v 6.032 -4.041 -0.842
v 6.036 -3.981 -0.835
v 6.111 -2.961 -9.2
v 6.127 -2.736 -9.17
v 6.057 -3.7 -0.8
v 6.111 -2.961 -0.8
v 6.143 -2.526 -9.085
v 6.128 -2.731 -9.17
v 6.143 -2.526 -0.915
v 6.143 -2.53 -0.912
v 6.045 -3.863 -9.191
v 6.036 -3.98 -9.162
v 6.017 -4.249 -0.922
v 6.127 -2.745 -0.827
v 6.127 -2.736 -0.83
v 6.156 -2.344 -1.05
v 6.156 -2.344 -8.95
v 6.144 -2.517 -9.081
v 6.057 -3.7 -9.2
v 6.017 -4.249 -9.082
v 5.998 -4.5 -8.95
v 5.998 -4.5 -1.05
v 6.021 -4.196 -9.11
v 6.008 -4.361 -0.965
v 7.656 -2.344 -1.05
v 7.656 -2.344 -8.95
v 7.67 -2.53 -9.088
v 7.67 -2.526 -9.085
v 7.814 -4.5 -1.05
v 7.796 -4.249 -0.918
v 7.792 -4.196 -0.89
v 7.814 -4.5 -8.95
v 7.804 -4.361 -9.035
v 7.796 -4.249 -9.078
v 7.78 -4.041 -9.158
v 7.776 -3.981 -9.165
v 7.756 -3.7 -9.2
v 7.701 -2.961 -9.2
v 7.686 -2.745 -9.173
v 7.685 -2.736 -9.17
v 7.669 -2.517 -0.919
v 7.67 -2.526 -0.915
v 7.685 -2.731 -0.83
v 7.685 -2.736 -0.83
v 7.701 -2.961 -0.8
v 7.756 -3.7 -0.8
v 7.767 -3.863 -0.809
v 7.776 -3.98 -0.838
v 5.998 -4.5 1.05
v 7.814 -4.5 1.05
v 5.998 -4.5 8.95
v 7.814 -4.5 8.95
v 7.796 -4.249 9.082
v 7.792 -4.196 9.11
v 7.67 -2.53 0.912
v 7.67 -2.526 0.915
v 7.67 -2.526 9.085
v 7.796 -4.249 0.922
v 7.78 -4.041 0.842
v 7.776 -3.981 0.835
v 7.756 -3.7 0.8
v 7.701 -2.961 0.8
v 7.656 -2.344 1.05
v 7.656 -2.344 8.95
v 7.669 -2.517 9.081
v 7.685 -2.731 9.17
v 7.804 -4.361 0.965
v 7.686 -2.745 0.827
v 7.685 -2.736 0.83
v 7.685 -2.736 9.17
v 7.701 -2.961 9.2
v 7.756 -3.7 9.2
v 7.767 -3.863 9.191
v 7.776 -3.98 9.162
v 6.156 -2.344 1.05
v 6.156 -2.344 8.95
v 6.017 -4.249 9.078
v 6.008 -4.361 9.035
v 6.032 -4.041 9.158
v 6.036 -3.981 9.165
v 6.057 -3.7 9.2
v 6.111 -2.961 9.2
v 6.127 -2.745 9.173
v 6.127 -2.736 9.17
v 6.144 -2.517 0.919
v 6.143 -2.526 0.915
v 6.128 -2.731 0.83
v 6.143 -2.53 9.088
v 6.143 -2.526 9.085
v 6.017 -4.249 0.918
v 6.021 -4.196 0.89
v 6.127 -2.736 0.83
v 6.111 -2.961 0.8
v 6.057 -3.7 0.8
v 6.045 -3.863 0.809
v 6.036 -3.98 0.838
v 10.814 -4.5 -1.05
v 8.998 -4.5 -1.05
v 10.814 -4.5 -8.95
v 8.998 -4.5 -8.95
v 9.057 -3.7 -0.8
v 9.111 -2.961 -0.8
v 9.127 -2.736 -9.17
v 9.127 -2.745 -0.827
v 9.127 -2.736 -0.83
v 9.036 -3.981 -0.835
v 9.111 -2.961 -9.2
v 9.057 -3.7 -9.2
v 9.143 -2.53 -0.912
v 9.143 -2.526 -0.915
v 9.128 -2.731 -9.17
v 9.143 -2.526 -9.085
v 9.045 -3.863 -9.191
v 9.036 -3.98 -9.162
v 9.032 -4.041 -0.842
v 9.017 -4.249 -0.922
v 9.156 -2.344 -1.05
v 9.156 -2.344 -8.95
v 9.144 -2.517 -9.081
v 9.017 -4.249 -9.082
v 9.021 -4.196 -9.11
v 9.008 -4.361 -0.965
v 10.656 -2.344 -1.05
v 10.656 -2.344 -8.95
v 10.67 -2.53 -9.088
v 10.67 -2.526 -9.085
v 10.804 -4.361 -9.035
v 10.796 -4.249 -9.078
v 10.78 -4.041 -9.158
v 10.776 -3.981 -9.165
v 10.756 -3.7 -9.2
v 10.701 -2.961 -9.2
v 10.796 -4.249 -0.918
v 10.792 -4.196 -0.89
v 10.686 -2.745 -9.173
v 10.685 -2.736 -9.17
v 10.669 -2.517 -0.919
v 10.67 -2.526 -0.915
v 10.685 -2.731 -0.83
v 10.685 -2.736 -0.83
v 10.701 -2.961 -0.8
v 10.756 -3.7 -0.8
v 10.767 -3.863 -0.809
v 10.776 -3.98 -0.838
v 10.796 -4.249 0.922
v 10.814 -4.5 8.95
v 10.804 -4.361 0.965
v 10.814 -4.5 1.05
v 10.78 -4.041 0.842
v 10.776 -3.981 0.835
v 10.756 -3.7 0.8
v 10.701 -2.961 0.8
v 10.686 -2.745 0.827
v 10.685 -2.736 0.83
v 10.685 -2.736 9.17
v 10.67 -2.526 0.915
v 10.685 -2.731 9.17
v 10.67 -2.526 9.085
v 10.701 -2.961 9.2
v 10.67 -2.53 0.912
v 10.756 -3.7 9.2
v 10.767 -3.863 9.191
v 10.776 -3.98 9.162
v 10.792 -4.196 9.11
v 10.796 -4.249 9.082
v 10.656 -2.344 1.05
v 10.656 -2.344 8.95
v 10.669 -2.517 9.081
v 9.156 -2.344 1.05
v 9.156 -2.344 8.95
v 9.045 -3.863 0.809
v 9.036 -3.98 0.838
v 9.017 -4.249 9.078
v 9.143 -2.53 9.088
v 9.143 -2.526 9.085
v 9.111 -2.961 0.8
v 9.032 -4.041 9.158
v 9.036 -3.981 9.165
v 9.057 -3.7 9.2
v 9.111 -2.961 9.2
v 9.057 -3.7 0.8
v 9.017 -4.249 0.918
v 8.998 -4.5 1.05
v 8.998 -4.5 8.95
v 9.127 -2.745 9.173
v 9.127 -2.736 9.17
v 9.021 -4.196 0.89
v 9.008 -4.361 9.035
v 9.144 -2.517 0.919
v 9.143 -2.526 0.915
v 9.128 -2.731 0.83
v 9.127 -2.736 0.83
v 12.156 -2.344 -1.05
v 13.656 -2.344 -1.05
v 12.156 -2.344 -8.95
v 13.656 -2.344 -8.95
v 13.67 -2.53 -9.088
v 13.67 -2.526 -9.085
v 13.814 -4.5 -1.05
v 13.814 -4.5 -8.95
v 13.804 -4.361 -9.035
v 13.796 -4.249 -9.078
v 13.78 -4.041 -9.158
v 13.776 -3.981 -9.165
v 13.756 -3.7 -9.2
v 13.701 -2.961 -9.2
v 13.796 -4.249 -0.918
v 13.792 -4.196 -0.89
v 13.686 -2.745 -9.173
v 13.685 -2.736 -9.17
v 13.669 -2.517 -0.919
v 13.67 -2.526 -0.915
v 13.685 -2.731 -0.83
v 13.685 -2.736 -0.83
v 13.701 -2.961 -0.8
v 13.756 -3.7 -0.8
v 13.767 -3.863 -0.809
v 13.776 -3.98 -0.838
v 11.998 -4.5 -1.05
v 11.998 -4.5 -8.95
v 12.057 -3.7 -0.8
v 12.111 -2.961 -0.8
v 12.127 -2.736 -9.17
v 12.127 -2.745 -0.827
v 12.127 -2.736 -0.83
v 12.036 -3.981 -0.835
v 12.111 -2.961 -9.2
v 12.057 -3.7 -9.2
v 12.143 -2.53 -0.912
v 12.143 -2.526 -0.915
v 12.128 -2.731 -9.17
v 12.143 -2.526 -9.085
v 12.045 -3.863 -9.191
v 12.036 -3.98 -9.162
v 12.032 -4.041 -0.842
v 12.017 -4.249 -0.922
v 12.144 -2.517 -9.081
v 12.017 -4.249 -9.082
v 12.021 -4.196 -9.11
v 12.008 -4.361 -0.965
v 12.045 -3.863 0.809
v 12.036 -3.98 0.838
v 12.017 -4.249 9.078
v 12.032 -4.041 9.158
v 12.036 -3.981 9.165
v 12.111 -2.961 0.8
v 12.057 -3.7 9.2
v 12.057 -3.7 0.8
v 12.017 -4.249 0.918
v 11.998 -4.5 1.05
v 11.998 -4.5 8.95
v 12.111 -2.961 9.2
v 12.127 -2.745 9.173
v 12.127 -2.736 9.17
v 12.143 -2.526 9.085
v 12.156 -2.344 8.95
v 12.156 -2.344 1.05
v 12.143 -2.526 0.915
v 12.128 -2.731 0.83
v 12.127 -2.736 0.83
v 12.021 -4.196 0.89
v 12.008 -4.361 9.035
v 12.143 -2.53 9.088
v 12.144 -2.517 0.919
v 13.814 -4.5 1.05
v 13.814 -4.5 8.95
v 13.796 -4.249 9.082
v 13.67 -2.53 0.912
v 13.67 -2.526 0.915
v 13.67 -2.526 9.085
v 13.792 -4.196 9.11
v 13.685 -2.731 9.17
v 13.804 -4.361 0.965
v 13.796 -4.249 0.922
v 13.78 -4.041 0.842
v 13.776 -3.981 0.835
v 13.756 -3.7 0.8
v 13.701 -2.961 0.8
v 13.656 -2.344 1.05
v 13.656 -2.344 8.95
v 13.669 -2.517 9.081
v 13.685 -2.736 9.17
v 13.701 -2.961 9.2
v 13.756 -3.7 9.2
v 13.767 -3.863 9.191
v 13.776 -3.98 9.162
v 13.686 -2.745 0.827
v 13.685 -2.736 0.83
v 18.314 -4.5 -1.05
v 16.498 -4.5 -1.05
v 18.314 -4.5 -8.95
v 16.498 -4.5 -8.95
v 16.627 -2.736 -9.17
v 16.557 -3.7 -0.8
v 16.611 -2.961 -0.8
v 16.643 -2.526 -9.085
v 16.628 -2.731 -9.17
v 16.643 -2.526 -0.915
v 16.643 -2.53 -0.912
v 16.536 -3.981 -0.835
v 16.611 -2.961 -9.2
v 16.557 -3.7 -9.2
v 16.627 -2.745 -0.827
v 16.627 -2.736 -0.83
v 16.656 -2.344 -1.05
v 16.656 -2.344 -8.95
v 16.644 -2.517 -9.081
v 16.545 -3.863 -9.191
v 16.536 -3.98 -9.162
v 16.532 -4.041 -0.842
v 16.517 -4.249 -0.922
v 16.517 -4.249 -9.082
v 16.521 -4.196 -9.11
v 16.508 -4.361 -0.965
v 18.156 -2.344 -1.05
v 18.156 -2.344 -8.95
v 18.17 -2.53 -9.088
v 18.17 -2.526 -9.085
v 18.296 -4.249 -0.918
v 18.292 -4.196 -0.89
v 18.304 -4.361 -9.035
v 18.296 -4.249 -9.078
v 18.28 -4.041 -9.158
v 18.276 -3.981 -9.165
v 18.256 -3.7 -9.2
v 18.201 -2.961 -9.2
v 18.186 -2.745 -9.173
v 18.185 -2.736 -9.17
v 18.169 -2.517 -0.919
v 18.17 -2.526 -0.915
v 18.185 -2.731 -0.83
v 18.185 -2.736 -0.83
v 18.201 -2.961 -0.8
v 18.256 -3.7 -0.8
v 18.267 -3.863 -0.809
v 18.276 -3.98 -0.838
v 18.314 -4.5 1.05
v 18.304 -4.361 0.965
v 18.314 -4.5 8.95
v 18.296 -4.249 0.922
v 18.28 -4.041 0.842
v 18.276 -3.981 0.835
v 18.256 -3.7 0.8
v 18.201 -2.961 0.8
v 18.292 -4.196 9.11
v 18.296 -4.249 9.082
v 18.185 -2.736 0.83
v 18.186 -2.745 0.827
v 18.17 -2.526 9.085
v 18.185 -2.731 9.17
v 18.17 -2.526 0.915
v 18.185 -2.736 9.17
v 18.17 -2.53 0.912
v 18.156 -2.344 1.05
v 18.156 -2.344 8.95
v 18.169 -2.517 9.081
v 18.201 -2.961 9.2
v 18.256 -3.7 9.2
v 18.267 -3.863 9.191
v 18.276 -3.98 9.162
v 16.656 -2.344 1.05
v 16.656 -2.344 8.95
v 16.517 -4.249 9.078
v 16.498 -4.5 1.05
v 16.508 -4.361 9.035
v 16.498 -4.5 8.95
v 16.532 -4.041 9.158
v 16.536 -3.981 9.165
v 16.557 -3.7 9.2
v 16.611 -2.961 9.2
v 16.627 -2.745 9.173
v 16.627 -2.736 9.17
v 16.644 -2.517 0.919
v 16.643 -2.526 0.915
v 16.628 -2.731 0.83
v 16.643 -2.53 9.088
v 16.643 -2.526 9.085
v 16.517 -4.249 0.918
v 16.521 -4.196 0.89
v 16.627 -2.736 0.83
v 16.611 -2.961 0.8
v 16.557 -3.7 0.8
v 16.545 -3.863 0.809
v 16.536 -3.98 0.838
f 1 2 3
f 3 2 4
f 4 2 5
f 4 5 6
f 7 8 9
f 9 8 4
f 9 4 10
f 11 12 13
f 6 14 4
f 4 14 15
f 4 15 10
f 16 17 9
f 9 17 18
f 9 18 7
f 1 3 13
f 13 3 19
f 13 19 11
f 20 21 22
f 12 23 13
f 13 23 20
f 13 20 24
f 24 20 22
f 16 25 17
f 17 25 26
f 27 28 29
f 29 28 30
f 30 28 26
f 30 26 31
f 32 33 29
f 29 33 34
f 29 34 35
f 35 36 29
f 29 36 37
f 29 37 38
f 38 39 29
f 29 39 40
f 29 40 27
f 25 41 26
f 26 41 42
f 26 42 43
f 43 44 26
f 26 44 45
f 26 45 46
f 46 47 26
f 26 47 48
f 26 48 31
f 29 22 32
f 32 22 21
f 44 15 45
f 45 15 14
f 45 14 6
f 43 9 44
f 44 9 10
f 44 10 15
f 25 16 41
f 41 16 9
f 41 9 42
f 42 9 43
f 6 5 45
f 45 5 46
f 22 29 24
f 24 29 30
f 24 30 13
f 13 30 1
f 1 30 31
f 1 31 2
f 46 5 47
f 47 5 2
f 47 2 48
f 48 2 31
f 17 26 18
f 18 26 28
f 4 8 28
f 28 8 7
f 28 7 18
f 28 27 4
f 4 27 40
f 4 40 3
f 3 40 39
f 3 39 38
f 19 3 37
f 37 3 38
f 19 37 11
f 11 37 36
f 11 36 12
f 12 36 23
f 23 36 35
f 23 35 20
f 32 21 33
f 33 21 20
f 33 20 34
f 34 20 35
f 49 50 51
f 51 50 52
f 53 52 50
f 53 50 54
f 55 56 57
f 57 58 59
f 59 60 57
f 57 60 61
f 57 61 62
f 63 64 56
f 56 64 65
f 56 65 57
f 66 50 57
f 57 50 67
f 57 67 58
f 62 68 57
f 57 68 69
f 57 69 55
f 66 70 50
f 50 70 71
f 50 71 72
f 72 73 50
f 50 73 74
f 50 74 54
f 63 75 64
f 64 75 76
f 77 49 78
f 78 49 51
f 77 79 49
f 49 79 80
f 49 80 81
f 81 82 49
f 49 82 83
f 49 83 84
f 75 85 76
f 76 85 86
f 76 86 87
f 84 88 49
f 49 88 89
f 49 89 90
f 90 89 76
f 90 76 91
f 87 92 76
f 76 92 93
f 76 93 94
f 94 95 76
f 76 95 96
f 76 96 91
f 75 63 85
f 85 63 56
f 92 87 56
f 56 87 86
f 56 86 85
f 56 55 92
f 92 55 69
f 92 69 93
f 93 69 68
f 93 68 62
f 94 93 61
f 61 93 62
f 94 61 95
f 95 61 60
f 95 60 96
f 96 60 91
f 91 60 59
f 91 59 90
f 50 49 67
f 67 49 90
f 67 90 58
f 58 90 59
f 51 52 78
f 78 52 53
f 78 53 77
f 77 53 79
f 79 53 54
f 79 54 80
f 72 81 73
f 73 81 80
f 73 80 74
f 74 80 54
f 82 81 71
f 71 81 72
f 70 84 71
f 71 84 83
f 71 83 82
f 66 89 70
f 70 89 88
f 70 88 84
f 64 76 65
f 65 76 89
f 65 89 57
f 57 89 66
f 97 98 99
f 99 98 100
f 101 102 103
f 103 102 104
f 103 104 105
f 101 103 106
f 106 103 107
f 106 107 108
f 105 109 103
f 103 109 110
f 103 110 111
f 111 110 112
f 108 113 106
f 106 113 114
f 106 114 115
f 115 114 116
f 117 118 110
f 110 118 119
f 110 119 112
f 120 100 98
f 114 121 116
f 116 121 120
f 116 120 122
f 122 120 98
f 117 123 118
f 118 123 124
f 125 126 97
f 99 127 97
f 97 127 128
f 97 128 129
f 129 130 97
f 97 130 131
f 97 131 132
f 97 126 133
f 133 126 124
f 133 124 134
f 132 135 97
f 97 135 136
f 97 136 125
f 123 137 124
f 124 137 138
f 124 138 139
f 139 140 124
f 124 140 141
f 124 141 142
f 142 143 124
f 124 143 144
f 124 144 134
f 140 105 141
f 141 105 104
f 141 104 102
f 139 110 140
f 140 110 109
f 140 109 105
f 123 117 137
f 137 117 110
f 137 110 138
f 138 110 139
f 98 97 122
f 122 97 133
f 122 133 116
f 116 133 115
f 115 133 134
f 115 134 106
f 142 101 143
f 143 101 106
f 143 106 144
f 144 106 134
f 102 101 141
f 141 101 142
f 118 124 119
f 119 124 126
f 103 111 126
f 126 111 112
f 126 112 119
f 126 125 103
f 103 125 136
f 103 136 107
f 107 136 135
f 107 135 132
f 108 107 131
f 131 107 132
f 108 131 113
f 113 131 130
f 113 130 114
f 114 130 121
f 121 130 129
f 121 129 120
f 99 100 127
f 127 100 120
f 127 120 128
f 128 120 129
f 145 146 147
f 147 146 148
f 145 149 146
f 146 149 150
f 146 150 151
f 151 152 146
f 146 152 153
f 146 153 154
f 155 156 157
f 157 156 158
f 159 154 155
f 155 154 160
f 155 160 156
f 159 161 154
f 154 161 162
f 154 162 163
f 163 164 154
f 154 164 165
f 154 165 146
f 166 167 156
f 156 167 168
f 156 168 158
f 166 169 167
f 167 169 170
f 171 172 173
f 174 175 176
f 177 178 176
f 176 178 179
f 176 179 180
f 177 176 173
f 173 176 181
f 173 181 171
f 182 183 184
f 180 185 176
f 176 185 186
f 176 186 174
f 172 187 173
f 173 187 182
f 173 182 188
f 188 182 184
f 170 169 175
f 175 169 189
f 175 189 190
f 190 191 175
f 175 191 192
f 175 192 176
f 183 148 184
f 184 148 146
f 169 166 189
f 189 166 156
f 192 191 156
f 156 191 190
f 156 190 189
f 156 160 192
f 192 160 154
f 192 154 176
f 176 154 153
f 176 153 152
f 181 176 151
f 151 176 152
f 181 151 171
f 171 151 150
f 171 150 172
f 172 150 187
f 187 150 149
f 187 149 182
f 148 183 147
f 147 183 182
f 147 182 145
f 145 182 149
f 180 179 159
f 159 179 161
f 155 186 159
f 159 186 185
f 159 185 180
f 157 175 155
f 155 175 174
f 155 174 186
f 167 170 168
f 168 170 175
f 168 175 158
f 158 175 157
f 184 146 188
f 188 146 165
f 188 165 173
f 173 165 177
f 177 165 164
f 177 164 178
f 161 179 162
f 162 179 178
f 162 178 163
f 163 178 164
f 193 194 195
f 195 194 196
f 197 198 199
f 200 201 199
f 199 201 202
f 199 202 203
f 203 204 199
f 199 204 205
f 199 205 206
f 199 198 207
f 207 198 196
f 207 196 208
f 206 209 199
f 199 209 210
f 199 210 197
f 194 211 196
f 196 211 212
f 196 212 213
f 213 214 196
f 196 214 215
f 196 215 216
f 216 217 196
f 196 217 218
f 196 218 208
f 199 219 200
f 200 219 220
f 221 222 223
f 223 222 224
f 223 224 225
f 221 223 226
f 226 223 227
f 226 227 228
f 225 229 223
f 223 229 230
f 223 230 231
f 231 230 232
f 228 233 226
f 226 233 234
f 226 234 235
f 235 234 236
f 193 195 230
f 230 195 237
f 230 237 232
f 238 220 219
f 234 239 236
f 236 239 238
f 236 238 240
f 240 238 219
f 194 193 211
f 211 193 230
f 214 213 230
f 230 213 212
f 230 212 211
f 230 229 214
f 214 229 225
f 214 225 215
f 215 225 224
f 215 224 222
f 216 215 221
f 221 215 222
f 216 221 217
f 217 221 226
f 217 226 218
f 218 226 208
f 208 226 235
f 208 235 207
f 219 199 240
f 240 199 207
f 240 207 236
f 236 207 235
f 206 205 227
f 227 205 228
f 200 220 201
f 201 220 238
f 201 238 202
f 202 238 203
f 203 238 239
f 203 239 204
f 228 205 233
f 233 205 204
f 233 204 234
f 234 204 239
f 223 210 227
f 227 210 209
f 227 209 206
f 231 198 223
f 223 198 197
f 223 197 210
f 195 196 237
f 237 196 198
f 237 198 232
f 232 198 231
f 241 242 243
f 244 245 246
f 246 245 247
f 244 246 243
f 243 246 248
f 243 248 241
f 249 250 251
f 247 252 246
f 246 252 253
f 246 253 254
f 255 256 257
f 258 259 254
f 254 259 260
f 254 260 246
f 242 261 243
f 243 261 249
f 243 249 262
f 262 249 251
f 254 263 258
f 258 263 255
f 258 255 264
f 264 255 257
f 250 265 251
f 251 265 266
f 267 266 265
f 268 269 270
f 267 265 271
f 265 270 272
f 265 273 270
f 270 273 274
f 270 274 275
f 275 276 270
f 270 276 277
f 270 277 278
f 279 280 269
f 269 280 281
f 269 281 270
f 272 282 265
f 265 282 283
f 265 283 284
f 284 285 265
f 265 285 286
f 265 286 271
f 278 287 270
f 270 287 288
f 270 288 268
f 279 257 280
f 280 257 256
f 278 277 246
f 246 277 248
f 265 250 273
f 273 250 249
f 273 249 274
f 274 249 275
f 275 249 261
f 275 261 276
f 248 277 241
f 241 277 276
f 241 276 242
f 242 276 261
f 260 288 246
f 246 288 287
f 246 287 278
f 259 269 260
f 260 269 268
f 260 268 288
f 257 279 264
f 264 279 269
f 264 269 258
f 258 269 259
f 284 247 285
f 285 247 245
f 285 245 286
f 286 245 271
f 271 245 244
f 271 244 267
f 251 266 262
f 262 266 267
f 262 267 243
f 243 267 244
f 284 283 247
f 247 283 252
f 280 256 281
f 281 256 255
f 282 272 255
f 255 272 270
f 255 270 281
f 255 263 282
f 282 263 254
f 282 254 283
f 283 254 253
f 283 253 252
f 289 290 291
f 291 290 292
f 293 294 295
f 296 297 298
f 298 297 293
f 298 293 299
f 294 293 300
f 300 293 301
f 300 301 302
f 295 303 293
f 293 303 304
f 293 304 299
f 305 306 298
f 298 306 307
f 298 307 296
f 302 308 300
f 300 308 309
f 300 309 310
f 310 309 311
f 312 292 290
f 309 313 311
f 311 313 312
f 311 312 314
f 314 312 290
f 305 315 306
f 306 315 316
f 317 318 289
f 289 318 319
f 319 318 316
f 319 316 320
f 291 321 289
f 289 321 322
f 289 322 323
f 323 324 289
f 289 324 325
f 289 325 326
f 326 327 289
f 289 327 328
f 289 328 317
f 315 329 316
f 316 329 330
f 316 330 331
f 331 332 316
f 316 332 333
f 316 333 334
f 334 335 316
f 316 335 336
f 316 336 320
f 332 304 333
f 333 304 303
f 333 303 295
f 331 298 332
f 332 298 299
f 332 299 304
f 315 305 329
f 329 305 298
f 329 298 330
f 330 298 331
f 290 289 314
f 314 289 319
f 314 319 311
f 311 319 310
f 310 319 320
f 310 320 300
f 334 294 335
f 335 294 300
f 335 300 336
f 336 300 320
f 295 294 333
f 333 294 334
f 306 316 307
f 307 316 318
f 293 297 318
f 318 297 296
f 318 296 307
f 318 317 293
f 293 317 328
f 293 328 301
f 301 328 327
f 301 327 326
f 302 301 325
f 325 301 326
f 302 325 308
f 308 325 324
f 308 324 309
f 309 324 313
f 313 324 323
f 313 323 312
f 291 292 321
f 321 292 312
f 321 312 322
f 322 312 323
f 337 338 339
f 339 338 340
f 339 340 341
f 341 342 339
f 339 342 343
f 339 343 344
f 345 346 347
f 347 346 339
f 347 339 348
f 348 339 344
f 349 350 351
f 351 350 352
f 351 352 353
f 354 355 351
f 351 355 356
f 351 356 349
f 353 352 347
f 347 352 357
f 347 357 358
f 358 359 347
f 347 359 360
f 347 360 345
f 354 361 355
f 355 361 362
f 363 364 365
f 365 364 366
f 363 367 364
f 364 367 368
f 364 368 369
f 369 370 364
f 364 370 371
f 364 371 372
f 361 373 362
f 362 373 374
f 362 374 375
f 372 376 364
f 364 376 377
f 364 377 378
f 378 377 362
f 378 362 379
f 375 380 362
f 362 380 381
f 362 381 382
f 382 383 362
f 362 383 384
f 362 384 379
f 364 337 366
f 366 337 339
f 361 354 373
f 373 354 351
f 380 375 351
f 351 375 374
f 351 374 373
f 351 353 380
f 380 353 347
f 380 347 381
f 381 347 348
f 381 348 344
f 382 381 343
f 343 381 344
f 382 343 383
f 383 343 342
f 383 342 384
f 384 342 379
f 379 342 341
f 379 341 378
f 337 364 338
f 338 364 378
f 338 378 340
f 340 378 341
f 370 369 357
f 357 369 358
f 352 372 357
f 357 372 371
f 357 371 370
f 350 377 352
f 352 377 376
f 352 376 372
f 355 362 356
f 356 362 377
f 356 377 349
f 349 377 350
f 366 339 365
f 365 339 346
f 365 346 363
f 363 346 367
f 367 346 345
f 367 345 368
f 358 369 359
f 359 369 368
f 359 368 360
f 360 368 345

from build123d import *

# Parameters (mm, degrees)
BOSS_EXTRUDE1_START   = -11.05
BOSS_EXTRUDE1_DEPTH   = 22.1
BOSS_EXTRUDE1_2_DEPTH = 22.1
BOSS_EXTRUDE1_3_DEPTH = 22.1
BOSS_EXTRUDE1_4_DEPTH = 22.1
CUT_EXTRUDE5_START    = -0.001745
CUT_EXTRUDE5_DEPTH    = 22.859465734


with BuildPart() as part:
    # Sketch2 → Boss-Extrude1 (new body)
    with BuildSketch(Plane.XY.offset(BOSS_EXTRUDE1_START)):
        Polygon((5.998255481, -4.5), (6.156194078, -2.34403522), (7.656194078, -2.34403522), (7.814132676, -4.5), align=None)
    extrude(amount=BOSS_EXTRUDE1_DEPTH)


with BuildPart() as body_2:
    # Sketch2 → Boss-Extrude1 2 (new body)
    with BuildSketch(Plane.XY.offset(BOSS_EXTRUDE1_START)):
        Polygon((10.656194078, -2.34403522), (9.156194078, -2.34403522), (8.998255481, -4.5), (10.814132676, -4.5), align=None)
    extrude(amount=BOSS_EXTRUDE1_2_DEPTH)


with BuildPart() as body_3:
    # Sketch2 → Boss-Extrude1 3 (new body)
    with BuildSketch(Plane.XY.offset(BOSS_EXTRUDE1_START)):
        Polygon((12.156194078, -2.34403522), (13.656194078, -2.34403522), (13.814132676, -4.5), (11.998255481, -4.5), align=None)
    extrude(amount=BOSS_EXTRUDE1_3_DEPTH)


with BuildPart() as body_4:
    # Sketch2 → Boss-Extrude1 4 (new body)
    with BuildSketch(Plane.XY.offset(BOSS_EXTRUDE1_START)):
        Polygon((18.156194078, -2.34403522), (16.656194078, -2.34403522), (16.498255481, -4.5), (18.314132676, -4.5), align=None)
    extrude(amount=BOSS_EXTRUDE1_4_DEPTH)


with BuildPart() as cut_extrude5_tool:
    # Sketch3 → Cut-Extrude5 (new, through all)
    with BuildSketch(Plane(origin=(0, 0, 0), x_dir=(0, 0, -1), z_dir=(1, 0, 0)).offset(CUT_EXTRUDE5_START)):
        with BuildLine():
            Line((-8.95, -4.5), (-11.05, -4.5))
            Line((-11.05, -4.5), (-11.05, -2.34403522))
            Line((-11.05, -2.34403522), (-8.95, -2.34403522))
            ThreePointArc((-8.95, -2.34403522), (-9.135123882, -2.628018904), (-9.2, -2.960748033))
            Line((-9.2, -2.960748033), (-9.2, -3.7))
            ThreePointArc((-9.2, -3.7), (-9.136044369, -4.119076365), (-8.95, -4.5))
        make_face()
        with BuildLine():
            Line((-1.05, -4.5), (1.05, -4.5))
            ThreePointArc((1.05, -4.5), (0.863955631, -4.119076365), (0.8, -3.7))
            Line((0.8, -3.7), (0.8, -2.960748033))
            ThreePointArc((0.8, -2.960748033), (0.864876118, -2.628018904), (1.05, -2.34403522))
            Line((1.05, -2.34403522), (-1.05, -2.34403522))
            ThreePointArc((-1.05, -2.34403522), (-0.864876118, -2.628018904), (-0.8, -2.960748033))
            Line((-0.8, -2.960748033), (-0.8, -3.7))
            ThreePointArc((-0.8, -3.7), (-0.863955631, -4.119076365), (-1.05, -4.5))
        make_face()
        with BuildLine():
            Line((8.95, -4.5), (11.05, -4.5))
            Line((11.05, -4.5), (11.05, -2.34403522))
            Line((11.05, -2.34403522), (8.95, -2.34403522))
            ThreePointArc((8.95, -2.34403522), (9.135123882, -2.628018904), (9.2, -2.960748033))
            Line((9.2, -2.960748033), (9.2, -3.7))
            ThreePointArc((9.2, -3.7), (9.136044369, -4.119076365), (8.95, -4.5))
        make_face()
    extrude(amount=CUT_EXTRUDE5_DEPTH)


with BuildPart() as part_1:
    add(part.part)

    # Cut-Extrude5: cut by cut_extrude5_tool
    add(cut_extrude5_tool.part, mode=Mode.SUBTRACT)


with BuildPart() as body_2_1:
    add(body_2.part)

    # Cut-Extrude5: cut by cut_extrude5_tool
    add(cut_extrude5_tool.part, mode=Mode.SUBTRACT)


with BuildPart() as body_3_1:
    add(body_3.part)

    # Cut-Extrude5: cut by cut_extrude5_tool
    add(cut_extrude5_tool.part, mode=Mode.SUBTRACT)


with BuildPart() as body_4_1:
    add(body_4.part)

    # Cut-Extrude5: cut by cut_extrude5_tool
    add(cut_extrude5_tool.part, mode=Mode.SUBTRACT)


with BuildPart() as cut_extrude5_piece_1:
    # of the separate pieces the step leaves, piece 1, a body of its own (cut_extrude5_pieces)
    add(part_1.part.solids().sort_by_distance((6.056860741, -3.7, 0.8))[0])


with BuildPart() as cut_extrude5_piece_2:
    # of the separate pieces the step leaves, piece 2, a body of its own (cut_extrude5_pieces)
    add(part_1.part.solids().sort_by_distance((6.056860741, -3.7, -9.2))[0])


with BuildPart() as cut_extrude5_piece_1_of_body_2:
    # of the separate pieces the step leaves, piece 1, a body of its own (cut_extrude5_pieces_of_body_2)
    add(body_2_1.part.solids().sort_by_distance((9.156194078, -2.34403522, -8.95))[0])


with BuildPart() as cut_extrude5_piece_2_of_body_2:
    # of the separate pieces the step leaves, piece 2, a body of its own (cut_extrude5_pieces_of_body_2)
    add(body_2_1.part.solids().sort_by_distance((9.156194078, -2.34403522, 1.05))[0])


with BuildPart() as cut_extrude5_piece_1_of_body_3:
    # of the separate pieces the step leaves, piece 1, a body of its own (cut_extrude5_pieces_of_body_3)
    add(body_3_1.part.solids().sort_by_distance((12.156194078, -2.34403522, -8.95))[0])


with BuildPart() as cut_extrude5_piece_2_of_body_3:
    # of the separate pieces the step leaves, piece 2, a body of its own (cut_extrude5_pieces_of_body_3)
    add(body_3_1.part.solids().sort_by_distance((12.156194078, -2.34403522, 1.05))[0])


with BuildPart() as cut_extrude5_piece_1_of_body_4:
    # of the separate pieces the step leaves, piece 1, a body of its own (cut_extrude5_pieces_of_body_4)
    add(body_4_1.part.solids().sort_by_distance((16.656194078, -2.34403522, -8.95))[0])


with BuildPart() as cut_extrude5_piece_2_of_body_4:
    # of the separate pieces the step leaves, piece 2, a body of its own (cut_extrude5_pieces_of_body_4)
    add(body_4_1.part.solids().sort_by_distance((16.656194078, -2.34403522, 1.05))[0])


solid = Compound([cut_extrude5_piece_1.part, cut_extrude5_piece_2.part, cut_extrude5_piece_1_of_body_2.part, cut_extrude5_piece_2_of_body_2.part, cut_extrude5_piece_1_of_body_3.part, cut_extrude5_piece_2_of_body_3.part, cut_extrude5_piece_1_of_body_4.part, cut_extrude5_piece_2_of_body_4.part])
